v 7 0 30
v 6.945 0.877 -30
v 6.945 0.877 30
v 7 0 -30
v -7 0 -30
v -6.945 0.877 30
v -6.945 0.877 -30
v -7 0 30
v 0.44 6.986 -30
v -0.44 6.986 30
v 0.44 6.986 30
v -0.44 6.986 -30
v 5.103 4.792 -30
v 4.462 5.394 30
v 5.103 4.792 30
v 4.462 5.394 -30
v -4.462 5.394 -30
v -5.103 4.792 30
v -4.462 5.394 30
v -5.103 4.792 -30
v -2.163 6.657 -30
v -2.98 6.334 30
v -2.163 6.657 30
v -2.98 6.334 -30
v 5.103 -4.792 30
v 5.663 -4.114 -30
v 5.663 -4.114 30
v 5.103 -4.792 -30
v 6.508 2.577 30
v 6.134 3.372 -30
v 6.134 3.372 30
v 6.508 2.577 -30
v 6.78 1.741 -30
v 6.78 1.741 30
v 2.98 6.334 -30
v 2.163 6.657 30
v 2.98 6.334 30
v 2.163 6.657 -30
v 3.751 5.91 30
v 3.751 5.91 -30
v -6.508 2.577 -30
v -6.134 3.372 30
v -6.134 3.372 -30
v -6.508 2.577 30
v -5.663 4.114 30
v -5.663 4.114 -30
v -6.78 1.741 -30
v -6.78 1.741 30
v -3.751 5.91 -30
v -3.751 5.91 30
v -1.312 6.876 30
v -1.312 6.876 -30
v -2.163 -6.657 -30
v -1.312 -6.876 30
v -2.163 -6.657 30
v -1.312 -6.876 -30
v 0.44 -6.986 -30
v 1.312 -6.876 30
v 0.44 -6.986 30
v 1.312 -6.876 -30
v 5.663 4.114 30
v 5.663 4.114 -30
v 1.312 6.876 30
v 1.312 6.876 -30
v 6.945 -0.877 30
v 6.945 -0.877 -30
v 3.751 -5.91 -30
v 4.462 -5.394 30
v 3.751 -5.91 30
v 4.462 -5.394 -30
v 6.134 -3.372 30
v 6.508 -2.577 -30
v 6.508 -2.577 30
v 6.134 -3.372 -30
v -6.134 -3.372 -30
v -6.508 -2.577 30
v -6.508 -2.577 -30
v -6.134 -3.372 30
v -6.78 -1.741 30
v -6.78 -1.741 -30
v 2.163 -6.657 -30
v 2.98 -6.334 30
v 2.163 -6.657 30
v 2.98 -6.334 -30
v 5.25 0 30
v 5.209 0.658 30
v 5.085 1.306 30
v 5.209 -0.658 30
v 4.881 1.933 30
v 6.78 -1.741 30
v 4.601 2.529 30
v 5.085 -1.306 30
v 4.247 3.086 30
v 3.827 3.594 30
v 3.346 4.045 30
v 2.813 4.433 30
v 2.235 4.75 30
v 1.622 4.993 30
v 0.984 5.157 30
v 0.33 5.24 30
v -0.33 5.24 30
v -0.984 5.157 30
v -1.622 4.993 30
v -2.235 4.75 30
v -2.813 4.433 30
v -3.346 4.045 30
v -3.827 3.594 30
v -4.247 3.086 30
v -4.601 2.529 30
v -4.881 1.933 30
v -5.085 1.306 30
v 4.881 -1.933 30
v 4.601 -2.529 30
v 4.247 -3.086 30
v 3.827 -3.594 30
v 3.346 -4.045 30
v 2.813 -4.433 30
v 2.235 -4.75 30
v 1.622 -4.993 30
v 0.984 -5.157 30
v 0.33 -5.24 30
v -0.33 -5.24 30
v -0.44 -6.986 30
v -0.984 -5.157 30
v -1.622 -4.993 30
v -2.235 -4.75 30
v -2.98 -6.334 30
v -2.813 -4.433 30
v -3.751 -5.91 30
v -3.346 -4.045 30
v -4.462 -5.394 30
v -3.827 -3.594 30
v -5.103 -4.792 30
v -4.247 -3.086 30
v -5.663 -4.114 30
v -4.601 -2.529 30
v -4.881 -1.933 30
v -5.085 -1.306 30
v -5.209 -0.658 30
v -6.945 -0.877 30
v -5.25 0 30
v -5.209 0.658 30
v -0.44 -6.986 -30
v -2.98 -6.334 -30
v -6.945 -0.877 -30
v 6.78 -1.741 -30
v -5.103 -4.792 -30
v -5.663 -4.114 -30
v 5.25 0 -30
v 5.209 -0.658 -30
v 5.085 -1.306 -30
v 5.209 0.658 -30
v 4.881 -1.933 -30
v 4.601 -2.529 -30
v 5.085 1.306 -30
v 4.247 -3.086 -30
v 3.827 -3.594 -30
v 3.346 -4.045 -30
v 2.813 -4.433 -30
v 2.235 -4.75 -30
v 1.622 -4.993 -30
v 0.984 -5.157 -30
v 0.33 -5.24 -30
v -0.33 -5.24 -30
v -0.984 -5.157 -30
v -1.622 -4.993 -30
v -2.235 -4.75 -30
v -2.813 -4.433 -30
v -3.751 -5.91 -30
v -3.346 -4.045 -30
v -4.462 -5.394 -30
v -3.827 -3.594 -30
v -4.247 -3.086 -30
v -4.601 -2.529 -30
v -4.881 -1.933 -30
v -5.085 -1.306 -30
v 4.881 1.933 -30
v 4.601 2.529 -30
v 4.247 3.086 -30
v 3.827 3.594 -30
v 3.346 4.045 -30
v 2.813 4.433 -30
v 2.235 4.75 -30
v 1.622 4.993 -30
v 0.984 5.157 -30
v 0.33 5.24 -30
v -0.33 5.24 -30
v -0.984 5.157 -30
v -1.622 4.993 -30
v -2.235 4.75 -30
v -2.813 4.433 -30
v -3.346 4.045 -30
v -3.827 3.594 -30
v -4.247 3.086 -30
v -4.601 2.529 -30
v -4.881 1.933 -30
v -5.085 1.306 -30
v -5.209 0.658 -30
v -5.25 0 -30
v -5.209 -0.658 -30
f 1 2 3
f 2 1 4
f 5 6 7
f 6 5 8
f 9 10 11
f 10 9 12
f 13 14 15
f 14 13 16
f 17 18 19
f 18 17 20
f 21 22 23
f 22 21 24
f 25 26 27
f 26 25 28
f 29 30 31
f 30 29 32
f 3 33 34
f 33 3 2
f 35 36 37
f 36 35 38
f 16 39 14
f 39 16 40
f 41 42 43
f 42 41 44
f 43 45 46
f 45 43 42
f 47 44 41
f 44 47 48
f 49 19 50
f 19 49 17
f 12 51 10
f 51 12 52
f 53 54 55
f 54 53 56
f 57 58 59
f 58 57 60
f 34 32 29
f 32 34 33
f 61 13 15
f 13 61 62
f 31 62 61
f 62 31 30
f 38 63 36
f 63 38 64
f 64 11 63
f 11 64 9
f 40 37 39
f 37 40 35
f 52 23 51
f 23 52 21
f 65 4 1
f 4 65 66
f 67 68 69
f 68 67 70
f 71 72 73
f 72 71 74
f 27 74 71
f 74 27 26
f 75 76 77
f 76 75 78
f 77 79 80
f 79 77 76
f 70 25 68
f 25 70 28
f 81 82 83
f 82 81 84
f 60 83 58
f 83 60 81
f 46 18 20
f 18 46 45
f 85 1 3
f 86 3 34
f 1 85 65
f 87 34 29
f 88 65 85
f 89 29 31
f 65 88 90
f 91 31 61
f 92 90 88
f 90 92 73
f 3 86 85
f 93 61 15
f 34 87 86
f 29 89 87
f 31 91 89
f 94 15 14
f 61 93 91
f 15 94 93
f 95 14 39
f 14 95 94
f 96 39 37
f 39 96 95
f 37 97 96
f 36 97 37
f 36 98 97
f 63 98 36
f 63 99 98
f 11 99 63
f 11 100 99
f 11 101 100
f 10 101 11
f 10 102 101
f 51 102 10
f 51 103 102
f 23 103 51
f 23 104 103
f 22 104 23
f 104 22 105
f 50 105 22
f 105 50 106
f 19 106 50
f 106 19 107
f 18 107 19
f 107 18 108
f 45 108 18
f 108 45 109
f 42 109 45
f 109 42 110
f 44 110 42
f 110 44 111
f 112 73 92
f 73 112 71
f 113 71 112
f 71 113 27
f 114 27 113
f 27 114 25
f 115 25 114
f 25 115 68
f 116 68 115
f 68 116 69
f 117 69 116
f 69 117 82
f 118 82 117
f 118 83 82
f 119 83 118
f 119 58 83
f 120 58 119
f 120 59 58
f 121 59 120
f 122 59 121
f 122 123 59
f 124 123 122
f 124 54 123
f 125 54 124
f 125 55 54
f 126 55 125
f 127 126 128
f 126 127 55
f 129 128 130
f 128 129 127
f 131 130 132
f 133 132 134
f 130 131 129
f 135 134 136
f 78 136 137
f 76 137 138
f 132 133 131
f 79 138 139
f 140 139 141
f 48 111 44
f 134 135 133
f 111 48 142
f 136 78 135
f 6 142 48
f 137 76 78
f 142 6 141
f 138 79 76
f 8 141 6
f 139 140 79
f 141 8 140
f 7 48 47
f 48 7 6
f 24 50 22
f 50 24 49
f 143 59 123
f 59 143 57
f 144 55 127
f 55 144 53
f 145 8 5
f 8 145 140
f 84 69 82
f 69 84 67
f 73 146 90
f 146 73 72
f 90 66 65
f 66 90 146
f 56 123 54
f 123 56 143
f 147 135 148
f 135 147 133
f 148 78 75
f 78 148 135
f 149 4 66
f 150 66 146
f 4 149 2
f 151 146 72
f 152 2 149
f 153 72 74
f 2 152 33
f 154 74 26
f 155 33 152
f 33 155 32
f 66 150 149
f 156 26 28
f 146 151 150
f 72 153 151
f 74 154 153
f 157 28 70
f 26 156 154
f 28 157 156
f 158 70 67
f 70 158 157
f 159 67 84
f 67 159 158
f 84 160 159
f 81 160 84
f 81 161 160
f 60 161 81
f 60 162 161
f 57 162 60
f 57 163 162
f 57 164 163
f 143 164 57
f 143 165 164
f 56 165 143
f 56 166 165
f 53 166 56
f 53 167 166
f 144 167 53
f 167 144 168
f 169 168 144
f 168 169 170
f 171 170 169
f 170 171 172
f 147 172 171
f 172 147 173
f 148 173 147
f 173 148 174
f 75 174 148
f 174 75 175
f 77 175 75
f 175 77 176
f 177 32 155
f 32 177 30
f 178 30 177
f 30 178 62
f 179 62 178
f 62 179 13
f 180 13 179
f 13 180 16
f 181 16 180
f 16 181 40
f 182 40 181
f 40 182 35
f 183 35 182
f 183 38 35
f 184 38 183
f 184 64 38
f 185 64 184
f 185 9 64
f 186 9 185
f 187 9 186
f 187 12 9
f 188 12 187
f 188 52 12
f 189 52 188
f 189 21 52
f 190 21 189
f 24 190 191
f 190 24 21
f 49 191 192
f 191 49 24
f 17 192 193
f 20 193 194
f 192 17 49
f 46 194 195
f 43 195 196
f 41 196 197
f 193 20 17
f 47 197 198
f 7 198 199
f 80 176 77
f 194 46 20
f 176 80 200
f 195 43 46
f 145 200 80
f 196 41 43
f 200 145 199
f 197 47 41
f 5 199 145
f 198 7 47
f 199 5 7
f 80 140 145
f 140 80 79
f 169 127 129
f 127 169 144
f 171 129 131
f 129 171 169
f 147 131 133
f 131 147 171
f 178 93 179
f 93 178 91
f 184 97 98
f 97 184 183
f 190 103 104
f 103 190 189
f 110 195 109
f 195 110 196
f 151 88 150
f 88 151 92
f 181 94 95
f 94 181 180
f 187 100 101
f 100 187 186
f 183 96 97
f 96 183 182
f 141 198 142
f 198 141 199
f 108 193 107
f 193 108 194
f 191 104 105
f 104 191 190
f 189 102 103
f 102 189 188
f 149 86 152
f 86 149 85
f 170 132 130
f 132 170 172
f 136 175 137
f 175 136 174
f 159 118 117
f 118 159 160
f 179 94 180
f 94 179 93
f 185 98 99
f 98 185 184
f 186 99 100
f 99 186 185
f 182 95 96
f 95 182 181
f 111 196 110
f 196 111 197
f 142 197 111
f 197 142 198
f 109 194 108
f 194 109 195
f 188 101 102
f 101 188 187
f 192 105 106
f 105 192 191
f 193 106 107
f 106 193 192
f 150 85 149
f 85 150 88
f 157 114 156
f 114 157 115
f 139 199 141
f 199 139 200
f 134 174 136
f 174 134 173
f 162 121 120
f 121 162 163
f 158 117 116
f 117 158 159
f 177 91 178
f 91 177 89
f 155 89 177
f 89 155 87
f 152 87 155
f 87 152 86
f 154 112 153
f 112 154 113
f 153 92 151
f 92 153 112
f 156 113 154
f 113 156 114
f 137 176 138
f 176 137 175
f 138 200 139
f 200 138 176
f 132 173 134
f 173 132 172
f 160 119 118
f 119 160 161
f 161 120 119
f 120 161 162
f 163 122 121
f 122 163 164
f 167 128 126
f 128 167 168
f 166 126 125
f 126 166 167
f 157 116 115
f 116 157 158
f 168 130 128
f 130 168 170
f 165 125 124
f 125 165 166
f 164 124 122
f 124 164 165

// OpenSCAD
$fn = 50;


difference() {
	union() {
		translate(v = [0, 0, -30.0000000000]) {
			cylinder(h = 60, r = 7.0000000000);
		}
	}
	union() {
		translate(v = [0, 0, -100.0000000000]) {
			cylinder(h = 200, r = 5.2500000000);
		}
	}
}
